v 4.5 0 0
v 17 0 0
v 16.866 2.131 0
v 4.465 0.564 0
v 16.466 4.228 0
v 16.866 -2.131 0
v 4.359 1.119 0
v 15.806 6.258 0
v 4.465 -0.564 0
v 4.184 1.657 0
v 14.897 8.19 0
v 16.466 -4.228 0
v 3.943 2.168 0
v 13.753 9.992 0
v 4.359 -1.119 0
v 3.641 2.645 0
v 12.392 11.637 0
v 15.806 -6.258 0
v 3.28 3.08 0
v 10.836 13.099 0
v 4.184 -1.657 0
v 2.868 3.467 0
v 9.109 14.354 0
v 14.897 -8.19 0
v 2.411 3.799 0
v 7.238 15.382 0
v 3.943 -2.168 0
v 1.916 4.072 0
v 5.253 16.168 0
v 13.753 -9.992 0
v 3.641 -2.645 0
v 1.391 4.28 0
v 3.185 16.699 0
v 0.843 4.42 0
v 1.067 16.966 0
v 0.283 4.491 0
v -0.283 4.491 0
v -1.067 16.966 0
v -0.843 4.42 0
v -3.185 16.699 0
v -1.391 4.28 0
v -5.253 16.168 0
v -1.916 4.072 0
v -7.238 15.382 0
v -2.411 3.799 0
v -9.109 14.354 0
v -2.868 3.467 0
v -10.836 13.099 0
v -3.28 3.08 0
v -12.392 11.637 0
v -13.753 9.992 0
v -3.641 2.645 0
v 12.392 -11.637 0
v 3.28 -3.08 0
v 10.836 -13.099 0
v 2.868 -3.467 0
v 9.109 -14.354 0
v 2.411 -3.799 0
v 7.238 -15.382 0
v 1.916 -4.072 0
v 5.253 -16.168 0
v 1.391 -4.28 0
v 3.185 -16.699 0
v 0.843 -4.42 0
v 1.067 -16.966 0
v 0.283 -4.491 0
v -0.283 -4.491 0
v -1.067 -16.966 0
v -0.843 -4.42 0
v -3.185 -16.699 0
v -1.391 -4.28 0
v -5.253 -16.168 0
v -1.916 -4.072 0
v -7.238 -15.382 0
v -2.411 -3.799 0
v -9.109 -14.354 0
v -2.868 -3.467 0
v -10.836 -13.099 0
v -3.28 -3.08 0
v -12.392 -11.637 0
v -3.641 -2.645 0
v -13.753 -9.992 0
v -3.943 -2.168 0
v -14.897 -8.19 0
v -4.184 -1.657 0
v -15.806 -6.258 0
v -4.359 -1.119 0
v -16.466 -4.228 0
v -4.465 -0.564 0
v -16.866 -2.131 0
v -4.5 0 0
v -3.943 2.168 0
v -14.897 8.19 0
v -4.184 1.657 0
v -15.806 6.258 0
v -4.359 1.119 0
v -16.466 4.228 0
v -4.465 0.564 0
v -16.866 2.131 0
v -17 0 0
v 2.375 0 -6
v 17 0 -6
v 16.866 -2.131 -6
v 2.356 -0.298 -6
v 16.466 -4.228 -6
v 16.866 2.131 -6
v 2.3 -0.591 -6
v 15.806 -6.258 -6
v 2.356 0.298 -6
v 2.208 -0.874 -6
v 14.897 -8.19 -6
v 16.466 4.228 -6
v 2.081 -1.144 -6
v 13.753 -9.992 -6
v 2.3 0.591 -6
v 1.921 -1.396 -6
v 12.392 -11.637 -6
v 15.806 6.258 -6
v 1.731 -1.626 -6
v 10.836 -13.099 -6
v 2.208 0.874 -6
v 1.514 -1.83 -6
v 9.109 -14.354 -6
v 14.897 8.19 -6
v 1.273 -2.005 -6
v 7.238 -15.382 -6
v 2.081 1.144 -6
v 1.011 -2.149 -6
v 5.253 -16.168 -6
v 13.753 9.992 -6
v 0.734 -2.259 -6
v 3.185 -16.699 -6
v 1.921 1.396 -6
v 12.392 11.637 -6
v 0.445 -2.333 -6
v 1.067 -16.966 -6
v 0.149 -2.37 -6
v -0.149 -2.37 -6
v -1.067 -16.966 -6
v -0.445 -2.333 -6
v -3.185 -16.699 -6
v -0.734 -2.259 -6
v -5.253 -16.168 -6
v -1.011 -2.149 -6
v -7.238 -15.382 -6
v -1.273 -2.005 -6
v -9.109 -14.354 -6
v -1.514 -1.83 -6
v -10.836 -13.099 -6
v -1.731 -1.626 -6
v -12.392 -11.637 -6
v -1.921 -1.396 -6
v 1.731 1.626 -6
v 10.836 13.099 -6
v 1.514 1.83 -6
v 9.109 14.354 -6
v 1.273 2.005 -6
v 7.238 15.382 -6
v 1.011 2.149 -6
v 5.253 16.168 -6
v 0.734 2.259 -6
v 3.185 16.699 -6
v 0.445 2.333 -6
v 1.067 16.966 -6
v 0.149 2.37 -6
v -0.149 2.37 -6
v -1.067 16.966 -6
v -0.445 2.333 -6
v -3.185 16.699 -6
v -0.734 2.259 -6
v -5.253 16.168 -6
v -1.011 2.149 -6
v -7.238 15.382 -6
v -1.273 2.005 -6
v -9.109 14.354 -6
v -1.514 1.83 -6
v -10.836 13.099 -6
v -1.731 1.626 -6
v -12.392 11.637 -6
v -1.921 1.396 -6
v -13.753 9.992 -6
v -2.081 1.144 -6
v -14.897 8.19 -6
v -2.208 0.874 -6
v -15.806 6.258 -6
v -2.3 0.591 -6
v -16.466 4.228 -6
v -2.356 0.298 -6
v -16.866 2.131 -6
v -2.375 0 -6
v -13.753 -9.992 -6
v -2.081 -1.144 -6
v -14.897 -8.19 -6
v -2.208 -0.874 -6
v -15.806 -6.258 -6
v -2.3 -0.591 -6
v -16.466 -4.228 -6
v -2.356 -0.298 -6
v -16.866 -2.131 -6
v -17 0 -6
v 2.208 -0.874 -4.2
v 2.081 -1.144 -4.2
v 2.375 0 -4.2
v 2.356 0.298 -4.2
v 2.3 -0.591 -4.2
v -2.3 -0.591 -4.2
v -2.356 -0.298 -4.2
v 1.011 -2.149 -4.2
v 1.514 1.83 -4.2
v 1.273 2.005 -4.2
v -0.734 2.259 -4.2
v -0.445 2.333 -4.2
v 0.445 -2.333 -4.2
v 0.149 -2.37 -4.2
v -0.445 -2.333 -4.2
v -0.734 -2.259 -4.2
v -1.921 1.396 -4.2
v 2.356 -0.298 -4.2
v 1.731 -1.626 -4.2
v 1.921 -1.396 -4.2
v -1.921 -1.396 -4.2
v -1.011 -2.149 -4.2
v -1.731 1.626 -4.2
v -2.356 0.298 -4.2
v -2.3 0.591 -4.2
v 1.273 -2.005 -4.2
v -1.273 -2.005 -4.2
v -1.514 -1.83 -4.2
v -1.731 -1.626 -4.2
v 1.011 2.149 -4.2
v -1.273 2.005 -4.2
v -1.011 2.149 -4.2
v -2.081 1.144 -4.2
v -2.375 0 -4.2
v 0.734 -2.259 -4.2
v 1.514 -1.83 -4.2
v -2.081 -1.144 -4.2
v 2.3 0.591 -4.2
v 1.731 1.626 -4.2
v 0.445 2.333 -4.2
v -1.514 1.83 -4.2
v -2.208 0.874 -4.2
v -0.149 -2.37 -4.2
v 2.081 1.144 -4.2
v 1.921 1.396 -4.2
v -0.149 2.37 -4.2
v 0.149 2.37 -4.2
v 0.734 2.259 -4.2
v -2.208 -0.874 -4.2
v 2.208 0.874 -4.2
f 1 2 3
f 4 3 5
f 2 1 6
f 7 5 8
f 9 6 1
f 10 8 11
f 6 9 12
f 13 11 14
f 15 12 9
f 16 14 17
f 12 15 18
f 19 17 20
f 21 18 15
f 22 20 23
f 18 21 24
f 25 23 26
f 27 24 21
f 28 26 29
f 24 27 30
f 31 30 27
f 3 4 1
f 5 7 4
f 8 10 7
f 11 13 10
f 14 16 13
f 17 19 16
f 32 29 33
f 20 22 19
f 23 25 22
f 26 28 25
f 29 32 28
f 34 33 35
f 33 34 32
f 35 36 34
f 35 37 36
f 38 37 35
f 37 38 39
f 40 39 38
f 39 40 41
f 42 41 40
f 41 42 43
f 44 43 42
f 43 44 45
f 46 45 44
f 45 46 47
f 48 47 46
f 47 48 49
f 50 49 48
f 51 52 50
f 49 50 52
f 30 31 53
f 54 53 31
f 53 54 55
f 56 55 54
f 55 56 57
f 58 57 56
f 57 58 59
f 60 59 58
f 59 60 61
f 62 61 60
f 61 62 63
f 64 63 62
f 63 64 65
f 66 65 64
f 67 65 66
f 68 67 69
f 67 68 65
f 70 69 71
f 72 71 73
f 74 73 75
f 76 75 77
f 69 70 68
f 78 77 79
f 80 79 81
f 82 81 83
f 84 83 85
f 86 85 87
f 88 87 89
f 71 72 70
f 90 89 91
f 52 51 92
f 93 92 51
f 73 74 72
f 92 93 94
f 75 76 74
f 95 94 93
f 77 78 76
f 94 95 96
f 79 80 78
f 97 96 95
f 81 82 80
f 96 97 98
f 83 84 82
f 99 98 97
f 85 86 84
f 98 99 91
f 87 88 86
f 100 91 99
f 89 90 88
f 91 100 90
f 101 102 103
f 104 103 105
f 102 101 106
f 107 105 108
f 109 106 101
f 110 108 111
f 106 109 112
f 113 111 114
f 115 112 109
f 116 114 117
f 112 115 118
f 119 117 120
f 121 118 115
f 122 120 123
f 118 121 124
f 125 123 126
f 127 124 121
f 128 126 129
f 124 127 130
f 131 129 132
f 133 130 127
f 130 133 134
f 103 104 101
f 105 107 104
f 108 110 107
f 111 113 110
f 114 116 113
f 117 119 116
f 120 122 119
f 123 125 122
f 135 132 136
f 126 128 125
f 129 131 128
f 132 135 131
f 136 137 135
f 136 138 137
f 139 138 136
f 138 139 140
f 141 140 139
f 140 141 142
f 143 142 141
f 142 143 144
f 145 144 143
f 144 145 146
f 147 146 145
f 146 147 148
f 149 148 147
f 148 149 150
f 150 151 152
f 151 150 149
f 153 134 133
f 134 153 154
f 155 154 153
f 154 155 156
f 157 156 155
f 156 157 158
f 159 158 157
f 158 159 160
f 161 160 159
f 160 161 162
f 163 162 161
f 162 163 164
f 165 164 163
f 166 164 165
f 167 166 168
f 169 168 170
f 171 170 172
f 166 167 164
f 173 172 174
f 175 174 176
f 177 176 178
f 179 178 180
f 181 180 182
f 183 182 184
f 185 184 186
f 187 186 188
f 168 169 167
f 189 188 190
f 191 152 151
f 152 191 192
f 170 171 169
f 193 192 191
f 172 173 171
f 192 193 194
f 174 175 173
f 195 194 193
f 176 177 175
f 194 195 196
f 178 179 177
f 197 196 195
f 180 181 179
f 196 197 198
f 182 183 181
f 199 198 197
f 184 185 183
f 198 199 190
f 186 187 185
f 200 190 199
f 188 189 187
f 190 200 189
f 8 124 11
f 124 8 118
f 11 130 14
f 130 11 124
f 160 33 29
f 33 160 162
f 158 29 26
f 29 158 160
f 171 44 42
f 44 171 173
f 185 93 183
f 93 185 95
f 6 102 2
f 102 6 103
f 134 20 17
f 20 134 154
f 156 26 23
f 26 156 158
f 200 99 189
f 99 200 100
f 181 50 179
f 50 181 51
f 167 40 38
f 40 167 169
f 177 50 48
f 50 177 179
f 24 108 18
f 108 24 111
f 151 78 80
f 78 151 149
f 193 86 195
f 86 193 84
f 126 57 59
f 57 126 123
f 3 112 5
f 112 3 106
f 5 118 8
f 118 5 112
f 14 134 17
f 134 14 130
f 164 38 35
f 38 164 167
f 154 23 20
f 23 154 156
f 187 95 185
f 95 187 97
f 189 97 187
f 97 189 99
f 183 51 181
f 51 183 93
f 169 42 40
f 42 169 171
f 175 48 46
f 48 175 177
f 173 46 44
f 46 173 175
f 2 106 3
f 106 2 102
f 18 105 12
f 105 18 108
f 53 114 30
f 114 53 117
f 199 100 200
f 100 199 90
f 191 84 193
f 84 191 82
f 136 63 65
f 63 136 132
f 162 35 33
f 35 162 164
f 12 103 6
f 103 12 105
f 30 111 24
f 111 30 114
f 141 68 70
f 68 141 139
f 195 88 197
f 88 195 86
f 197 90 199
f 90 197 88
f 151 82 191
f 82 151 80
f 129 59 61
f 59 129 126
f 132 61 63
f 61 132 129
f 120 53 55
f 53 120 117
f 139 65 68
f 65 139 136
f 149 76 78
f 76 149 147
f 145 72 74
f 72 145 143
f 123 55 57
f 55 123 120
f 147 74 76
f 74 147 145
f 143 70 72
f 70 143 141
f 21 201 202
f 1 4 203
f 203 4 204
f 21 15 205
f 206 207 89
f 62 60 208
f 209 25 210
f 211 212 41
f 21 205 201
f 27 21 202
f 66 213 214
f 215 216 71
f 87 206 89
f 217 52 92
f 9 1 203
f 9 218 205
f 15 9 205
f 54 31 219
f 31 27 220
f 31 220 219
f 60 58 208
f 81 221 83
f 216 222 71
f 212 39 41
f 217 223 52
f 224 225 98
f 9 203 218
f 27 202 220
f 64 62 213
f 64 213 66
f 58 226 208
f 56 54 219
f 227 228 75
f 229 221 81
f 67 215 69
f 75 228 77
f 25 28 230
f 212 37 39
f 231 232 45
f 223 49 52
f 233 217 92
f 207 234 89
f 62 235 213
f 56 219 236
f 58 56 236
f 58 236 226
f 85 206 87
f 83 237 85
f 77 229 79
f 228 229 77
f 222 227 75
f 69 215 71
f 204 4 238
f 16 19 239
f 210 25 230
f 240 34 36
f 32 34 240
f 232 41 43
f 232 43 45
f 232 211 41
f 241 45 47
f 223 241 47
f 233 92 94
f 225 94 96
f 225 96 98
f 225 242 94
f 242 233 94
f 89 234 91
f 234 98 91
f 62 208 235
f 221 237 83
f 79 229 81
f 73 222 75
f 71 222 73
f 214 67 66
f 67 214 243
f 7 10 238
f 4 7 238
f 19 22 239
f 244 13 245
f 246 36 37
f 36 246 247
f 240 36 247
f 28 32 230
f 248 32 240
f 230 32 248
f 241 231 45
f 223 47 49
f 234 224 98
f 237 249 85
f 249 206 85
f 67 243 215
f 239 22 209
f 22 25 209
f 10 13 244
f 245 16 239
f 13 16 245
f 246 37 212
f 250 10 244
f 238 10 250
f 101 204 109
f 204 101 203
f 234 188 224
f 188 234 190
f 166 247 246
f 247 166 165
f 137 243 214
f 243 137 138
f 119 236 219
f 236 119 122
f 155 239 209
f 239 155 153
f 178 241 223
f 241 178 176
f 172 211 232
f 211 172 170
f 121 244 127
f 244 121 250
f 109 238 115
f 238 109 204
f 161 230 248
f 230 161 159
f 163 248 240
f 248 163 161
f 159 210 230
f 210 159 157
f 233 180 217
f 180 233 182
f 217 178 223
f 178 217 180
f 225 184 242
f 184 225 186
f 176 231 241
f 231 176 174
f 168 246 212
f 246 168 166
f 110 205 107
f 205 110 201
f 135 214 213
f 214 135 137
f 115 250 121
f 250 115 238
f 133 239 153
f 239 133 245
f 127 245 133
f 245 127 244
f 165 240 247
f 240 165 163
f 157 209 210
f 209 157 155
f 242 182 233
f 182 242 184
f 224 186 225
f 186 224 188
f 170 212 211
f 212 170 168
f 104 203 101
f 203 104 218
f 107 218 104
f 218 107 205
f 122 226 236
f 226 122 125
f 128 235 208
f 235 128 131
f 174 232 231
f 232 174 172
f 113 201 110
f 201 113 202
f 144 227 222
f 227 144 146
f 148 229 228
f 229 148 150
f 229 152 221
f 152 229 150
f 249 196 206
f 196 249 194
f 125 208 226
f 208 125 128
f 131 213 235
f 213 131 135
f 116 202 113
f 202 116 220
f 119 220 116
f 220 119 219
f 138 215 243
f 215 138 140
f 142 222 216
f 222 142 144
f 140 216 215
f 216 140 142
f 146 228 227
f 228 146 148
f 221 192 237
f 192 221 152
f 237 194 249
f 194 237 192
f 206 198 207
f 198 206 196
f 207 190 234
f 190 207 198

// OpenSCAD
$fn = 50;


difference() {
	union() {
		translate(v = [0, 0, -6.0000000000]) {
			cylinder(h = 6, r = 7.0000000000);
		}
		translate(v = [0, 0, -6.0000000000]) {
			cylinder(h = 6, r = 17.0000000000);
		}
	}
	union() {
		translate(v = [0, 0, 0]) {
			rotate(a = [0, 0, 0]) {
				difference() {
					union() {
						#translate(v = [0, 0, -6.0000000000]) {
							cylinder(h = 6, r = 2.2500000000);
						}
						#translate(v = [0, 0, -4.2000000000]) {
							cylinder(h = 4.2000000000, r1 = 2.3750000000, r2 = 4.5000000000);
						}
						#translate(v = [0, 0, -6.0000000000]) {
							cylinder(h = 6, r = 2.3750000000);
						}
						#translate(v = [0, 0, -6.0000000000]) {
							cylinder(h = 6, r = 2.2500000000);
						}
					}
					union();
				}
			}
		}
	}
}
